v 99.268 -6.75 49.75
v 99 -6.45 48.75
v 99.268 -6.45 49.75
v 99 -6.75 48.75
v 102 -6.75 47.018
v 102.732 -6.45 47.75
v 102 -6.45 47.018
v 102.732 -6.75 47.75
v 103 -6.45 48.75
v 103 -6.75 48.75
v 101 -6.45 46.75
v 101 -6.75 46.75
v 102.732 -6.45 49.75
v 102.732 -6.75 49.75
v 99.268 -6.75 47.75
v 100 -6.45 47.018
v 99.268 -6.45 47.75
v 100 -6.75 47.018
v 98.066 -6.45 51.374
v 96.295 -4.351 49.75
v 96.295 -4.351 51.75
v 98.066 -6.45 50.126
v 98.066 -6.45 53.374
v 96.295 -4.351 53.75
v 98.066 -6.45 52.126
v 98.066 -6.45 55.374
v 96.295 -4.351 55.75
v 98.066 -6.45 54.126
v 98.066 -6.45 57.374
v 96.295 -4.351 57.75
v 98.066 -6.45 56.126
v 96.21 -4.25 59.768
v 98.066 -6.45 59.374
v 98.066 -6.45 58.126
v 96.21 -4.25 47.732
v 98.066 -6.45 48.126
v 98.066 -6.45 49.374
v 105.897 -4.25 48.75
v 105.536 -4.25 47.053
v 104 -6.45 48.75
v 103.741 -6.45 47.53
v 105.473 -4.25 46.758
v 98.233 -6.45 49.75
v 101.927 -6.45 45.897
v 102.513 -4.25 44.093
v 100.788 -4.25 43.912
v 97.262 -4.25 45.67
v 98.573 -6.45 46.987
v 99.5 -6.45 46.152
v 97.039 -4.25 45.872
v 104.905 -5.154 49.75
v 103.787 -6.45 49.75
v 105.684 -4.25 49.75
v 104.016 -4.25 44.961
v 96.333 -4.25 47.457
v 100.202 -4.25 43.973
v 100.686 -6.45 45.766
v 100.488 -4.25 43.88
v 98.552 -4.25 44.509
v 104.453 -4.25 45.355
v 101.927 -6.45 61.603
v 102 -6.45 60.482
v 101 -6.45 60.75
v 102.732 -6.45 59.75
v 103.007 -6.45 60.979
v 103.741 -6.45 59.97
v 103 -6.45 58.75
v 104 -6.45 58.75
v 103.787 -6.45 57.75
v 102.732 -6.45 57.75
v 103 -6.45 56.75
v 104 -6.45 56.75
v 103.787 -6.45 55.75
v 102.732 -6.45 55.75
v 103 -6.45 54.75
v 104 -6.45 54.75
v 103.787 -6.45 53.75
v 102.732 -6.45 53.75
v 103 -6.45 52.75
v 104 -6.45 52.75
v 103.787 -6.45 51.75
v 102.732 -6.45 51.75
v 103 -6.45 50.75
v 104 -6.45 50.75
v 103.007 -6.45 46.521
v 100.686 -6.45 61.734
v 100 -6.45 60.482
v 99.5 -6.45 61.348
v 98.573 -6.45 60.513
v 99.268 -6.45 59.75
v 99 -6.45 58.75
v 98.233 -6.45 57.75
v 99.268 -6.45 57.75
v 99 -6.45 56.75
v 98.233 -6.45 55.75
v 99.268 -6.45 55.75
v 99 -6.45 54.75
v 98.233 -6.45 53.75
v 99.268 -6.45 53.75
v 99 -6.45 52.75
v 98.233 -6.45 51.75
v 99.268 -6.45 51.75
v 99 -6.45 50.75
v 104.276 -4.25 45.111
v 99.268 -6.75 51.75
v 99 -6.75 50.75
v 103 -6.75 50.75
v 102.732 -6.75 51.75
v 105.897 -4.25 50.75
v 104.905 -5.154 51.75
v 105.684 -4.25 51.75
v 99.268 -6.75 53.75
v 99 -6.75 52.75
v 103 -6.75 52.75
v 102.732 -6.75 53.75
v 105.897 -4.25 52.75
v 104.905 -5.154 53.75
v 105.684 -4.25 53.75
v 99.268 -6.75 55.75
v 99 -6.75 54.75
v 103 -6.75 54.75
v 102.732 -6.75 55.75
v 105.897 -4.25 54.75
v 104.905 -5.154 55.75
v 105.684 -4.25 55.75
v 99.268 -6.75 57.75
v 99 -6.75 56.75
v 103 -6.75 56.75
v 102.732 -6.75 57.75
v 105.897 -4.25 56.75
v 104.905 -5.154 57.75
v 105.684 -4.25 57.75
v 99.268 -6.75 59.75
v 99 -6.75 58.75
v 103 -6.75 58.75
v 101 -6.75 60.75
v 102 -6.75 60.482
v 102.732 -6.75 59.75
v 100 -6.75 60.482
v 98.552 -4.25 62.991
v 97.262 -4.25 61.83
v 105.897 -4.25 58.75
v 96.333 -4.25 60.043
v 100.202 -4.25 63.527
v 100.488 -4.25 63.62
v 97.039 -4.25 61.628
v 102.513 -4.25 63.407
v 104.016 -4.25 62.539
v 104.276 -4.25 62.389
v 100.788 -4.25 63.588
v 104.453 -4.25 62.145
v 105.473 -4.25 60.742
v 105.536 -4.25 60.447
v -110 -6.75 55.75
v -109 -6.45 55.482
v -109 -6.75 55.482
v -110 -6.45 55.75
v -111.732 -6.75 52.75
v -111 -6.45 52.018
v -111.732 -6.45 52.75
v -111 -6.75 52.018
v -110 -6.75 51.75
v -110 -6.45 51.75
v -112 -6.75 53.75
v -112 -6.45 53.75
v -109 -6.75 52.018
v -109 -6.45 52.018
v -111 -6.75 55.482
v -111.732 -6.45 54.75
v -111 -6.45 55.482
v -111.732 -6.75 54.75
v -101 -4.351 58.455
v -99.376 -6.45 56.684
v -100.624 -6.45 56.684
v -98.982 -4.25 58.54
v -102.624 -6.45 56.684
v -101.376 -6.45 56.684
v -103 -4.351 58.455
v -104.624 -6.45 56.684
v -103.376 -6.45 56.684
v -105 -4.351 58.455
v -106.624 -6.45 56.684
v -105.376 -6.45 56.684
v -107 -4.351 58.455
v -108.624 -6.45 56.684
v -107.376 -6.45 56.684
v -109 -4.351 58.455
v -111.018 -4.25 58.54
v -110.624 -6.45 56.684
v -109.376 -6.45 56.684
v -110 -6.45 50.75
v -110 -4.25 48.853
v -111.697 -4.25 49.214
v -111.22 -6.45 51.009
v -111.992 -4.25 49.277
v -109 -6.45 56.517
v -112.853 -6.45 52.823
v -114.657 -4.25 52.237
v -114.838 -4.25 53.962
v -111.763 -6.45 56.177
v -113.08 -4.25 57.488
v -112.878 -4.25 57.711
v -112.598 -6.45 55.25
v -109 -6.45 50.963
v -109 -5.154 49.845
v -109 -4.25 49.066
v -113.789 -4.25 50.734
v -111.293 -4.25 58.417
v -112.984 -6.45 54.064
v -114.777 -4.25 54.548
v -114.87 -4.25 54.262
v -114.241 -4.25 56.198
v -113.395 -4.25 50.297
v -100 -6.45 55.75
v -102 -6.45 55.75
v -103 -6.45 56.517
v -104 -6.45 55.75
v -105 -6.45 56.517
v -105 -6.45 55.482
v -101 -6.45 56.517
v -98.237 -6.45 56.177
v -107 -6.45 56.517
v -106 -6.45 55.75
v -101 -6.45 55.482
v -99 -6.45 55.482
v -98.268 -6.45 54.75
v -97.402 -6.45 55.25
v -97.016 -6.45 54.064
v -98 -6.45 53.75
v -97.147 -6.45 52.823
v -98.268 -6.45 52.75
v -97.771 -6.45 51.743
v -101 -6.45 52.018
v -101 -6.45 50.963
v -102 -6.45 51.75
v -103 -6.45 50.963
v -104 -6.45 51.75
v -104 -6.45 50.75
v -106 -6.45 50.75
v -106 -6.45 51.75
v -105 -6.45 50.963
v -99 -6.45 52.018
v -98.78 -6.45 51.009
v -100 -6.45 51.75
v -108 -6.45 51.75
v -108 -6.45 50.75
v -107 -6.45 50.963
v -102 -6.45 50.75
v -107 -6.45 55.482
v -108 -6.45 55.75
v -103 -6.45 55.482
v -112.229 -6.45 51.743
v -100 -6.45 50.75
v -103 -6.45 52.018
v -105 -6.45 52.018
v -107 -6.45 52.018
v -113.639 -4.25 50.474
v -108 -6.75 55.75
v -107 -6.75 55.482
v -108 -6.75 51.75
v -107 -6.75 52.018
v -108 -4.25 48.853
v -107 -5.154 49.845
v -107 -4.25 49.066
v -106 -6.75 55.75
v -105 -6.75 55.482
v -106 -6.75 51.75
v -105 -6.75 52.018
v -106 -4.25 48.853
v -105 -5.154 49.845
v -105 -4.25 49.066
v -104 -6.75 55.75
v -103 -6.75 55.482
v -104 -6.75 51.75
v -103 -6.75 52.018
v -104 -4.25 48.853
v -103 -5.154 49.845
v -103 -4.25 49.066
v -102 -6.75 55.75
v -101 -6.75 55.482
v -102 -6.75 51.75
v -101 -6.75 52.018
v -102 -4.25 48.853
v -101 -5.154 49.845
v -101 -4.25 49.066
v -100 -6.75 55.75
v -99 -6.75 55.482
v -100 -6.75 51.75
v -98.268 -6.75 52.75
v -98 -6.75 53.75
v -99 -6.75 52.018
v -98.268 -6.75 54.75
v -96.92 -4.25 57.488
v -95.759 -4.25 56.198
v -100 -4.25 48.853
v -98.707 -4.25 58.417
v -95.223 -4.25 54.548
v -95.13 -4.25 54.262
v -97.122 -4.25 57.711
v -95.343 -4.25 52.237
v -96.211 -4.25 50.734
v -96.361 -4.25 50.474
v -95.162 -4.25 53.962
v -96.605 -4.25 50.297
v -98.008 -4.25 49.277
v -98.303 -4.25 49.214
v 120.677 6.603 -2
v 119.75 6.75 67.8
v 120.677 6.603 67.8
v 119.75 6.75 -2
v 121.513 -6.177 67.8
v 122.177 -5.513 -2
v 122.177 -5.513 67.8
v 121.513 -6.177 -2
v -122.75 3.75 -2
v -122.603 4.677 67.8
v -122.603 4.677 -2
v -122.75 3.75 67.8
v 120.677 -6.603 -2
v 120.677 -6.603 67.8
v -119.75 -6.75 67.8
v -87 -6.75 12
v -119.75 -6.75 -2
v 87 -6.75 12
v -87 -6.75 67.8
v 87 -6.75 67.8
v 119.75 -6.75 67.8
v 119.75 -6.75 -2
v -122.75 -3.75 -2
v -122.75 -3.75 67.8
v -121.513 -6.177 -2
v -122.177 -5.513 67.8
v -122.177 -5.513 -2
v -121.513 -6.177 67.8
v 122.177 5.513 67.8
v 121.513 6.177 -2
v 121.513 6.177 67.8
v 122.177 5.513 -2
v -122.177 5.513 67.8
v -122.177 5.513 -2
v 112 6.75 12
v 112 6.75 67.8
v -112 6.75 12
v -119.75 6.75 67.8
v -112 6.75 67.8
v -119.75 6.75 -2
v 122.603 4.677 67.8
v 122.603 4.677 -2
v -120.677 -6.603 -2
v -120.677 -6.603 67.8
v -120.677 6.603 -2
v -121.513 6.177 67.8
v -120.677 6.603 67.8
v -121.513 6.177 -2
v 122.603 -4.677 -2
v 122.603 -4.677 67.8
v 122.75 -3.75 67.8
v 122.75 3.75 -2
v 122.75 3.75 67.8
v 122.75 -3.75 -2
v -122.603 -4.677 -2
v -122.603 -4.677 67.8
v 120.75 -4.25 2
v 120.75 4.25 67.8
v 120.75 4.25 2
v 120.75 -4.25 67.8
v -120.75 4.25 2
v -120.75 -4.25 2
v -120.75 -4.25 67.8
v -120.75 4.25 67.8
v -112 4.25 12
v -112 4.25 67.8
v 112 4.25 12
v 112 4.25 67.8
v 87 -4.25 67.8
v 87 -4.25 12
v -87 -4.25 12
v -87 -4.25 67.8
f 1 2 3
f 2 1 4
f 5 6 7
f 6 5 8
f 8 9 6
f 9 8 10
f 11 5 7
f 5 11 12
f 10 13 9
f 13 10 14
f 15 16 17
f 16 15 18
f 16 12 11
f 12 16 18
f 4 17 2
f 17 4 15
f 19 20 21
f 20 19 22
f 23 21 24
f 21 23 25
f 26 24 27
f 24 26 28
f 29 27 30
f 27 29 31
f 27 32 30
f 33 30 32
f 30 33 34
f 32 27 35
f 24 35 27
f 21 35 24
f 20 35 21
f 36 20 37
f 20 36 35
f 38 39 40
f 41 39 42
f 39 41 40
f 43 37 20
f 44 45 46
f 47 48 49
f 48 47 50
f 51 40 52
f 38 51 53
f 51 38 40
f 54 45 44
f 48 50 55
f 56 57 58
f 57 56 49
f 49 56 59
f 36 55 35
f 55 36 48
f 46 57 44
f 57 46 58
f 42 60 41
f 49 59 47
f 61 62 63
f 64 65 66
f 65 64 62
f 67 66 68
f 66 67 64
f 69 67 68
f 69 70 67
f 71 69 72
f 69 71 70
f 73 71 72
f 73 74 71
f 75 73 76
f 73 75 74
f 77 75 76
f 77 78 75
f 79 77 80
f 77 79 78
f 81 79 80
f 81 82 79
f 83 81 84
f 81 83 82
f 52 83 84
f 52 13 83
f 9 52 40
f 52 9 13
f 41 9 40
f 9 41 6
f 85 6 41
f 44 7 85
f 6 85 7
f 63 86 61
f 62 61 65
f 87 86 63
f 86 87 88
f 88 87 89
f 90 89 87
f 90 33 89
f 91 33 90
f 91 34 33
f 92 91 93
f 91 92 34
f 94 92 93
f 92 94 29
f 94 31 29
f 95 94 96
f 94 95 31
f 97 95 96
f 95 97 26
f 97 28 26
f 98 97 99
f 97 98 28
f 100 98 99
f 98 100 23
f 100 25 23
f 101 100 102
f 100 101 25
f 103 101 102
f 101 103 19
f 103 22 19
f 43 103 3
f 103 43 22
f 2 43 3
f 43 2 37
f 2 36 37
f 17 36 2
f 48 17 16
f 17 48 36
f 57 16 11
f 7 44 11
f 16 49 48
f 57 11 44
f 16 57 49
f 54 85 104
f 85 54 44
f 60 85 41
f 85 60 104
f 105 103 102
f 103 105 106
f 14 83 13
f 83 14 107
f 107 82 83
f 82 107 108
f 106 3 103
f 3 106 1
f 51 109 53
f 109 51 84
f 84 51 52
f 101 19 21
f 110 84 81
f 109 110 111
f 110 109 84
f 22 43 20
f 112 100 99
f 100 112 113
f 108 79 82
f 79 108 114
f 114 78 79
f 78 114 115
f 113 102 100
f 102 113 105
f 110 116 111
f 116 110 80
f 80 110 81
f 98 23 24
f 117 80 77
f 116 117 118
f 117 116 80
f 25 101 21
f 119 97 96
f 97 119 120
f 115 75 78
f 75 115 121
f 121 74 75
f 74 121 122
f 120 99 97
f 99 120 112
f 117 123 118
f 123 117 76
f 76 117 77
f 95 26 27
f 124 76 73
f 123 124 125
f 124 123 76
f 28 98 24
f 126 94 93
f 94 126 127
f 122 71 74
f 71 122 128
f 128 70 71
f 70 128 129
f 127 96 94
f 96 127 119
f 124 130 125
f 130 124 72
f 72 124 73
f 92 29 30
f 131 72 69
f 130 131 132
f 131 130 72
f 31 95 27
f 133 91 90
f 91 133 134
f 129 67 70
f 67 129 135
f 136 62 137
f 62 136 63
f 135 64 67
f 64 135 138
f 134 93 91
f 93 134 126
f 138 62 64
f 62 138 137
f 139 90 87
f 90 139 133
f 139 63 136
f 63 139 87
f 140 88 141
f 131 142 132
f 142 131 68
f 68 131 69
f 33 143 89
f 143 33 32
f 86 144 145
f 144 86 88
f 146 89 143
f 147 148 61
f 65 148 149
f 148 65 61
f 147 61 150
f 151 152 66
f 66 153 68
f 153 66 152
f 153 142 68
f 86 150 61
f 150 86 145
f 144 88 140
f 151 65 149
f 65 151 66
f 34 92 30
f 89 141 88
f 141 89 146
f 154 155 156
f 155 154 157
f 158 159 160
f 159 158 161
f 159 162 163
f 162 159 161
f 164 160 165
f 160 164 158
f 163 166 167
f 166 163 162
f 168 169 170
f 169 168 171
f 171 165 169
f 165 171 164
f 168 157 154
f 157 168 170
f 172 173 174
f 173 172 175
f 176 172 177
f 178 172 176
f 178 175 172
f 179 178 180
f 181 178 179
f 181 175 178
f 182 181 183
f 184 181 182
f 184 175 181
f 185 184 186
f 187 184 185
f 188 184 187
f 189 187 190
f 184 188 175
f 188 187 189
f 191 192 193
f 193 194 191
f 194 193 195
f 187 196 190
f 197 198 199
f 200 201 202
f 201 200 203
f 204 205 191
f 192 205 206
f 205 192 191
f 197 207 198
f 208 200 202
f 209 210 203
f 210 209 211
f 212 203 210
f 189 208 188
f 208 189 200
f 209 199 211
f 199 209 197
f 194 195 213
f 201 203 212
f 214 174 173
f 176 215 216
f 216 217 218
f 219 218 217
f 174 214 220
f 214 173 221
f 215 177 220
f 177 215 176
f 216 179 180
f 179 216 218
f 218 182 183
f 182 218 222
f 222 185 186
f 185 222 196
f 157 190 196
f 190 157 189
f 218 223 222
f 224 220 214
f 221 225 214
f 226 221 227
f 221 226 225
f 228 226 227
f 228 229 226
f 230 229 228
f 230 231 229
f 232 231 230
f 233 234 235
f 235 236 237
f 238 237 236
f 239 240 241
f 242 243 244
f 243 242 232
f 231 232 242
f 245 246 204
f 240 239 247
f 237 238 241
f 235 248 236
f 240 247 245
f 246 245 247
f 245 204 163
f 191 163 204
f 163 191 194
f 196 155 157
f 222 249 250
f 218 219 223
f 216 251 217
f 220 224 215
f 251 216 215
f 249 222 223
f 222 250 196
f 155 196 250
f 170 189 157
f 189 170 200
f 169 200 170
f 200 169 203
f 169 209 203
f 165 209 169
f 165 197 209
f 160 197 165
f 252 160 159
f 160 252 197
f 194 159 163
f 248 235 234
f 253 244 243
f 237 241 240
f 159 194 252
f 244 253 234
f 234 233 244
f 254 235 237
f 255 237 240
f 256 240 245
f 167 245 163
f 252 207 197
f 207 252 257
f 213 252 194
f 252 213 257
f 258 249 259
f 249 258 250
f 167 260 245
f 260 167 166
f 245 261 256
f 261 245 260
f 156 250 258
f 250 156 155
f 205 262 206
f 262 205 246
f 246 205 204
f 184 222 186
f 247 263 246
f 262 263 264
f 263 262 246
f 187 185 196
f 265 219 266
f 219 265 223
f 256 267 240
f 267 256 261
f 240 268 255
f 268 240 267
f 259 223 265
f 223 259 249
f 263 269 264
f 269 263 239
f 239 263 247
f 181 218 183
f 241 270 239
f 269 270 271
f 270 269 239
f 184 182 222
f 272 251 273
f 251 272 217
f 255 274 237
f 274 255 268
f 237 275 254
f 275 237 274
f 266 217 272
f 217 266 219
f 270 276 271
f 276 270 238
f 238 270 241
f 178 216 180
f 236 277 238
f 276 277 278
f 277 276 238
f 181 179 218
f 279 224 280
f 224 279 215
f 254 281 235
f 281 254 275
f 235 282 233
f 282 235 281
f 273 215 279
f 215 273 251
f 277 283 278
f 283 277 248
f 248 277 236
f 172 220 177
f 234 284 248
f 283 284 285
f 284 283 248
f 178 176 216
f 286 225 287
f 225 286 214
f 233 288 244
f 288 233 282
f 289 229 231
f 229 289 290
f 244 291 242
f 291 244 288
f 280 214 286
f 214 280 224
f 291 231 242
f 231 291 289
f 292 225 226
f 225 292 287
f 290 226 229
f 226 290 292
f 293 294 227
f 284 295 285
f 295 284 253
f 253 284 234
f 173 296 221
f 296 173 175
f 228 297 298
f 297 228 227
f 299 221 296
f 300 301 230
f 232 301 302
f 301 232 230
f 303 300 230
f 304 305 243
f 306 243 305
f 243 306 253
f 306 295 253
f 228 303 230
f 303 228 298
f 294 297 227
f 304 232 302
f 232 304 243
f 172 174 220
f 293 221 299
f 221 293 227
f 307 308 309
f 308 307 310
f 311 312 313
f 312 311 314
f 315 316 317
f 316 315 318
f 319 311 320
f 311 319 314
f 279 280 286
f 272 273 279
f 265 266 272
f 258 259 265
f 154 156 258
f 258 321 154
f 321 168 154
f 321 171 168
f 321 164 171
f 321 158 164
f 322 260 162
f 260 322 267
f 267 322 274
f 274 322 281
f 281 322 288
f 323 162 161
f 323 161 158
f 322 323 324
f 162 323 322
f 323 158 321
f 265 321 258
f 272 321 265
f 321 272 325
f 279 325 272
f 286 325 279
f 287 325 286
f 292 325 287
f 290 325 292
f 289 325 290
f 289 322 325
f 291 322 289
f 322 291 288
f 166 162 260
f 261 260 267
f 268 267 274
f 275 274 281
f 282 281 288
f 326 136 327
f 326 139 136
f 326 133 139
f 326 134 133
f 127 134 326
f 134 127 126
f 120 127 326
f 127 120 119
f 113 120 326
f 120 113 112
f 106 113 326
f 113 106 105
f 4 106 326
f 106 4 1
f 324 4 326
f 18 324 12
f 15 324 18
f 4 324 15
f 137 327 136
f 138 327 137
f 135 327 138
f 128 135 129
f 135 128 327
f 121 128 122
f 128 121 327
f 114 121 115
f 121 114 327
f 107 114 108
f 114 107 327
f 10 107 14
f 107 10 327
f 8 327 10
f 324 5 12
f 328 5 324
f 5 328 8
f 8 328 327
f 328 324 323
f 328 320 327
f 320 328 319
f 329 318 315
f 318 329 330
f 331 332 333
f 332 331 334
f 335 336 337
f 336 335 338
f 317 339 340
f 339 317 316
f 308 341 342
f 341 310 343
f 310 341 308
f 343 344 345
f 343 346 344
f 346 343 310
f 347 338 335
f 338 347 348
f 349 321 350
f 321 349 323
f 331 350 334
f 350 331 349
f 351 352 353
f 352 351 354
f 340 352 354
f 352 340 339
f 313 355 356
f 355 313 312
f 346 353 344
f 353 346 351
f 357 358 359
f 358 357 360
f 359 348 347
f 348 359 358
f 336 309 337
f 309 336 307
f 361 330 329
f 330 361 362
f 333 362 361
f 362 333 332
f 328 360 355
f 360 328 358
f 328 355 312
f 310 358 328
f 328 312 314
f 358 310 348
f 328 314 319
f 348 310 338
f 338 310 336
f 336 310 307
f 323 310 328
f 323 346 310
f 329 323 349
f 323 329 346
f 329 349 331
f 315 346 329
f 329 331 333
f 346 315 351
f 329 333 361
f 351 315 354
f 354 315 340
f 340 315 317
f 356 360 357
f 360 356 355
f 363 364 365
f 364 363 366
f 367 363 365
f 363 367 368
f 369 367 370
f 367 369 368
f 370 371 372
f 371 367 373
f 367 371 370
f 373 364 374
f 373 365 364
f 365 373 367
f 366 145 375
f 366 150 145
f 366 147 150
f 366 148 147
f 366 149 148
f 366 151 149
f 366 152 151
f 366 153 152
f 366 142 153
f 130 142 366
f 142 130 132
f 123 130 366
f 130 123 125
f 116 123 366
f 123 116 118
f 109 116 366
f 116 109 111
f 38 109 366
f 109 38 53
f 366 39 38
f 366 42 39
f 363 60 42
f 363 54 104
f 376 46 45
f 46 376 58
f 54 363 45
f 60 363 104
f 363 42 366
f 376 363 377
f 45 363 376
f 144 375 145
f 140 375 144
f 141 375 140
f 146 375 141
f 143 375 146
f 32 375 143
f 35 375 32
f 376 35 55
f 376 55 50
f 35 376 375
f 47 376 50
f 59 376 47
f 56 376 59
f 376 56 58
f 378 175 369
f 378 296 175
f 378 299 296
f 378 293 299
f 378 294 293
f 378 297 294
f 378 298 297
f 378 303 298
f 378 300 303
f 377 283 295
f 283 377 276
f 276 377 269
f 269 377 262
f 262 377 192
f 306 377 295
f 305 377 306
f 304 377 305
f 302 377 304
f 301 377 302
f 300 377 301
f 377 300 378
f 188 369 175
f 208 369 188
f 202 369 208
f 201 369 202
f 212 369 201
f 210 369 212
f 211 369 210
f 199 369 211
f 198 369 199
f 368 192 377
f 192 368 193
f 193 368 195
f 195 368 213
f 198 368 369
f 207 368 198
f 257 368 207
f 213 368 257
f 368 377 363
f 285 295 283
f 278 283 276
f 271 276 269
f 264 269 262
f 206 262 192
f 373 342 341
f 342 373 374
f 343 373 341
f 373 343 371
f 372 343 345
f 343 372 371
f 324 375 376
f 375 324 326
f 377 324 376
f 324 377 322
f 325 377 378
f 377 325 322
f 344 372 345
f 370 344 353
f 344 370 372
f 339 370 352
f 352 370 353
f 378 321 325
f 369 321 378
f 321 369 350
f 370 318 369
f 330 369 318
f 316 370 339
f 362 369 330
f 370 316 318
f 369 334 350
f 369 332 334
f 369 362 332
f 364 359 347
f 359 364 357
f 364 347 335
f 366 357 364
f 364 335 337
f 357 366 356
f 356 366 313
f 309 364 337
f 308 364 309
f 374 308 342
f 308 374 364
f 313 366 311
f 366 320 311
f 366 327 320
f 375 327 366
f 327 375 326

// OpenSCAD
// Wall Mount for iPad (or other tablets)
//
// Current version sized for an OG iPad Air, see below
// 
// Fairly easy to customize but note there's some decent 
// amount of hacks especially around the screw holes depending
// on the overall frame thickness.

// ipad air (https://support.apple.com/kb/SP692)
ipad_w = 240; // landscape orientation
ipad_h = 169.5;
ipad_d = 7.5;

// wiggle room
wig_w = 1.5; 
wig_h = 4;
wig_d = 1.0; 

// frame thickness
ft_h = 4;
ft_w = 2;
ft_d = 2.5;

// distance case extends over ipad face
inset = 8;

// case height as fraction of width (landscape mode)
h_frac = 0.4;
h = ipad_h * h_frac;

// inset for wall mount screw locations
mount_w = 50;

// inside radius
rad_o = 3.0;


module wall_screw_hole() {
  // #6 Imperial Wood Screw
  screw_width = 4;
  screw_width2 = 11;
  screw_width3 = 6;
  screw_height = ft_d+.5;

  translate([0,0,0]) union() {
    // screw shaft
    cylinder(h=screw_height, d=screw_width, $fn=12);
    // countersink screw head space
    translate([0,0,screw_height/2-.7]) cylinder(h=screw_height/2+1.4, d1=screw_width3, d2=screw_width2, $fn=15);
  }
}

module wall_screw_holes() {
    // make a slot to allow for leveling
    for(i=[-5:2:05]) {
      translate([0,0,i]) rotate([-90,0,0]) wall_screw_hole();
    }
}

module case() {
  translate([0,0,ipad_h/2+ft_h])
    difference() {
      difference() { // main body
    
        // hacked a bit to allow for eased side edges
        d = ipad_d + ft_d*2 + wig_d;
        w = ipad_w + ft_w*2 + wig_w;
        h2 = ipad_h +ft_h*2 + wig_h;
        rotate([0,0,0]) translate([0,0,0-h2/2])
          linear_extrude(h2) {
            offset(r=rad_o, $fn=20)
            square([w-rad_o*2,d-rad_o*2], center = true);
        }
        
        // slot - TODO: maybe round this off as well w/offset?
        cube([ipad_w+ wig_w, ipad_d+wig_d, ipad_h+wig_h], center = true); 

        // front knockout
        translate([0,ipad_d/2+wig_d,0])
        cube([ipad_w - inset*2, ipad_d+wig_d+ft_d*1, ipad_h-inset*2], center = true); 

        // back knockout
        translate([0,-ipad_d/2-wig_d,0])
        cube([ipad_w - inset*2 - mount_w, ipad_d+wig_d+ft_d*3, ipad_h-inset*2], center = true);
        
        // top cutoff
        translate([0,0,h]) cube([ipad_w + ft_w*+10, ipad_d + wig_d + ft_d*2+1, ipad_h +ft_h*2], center = true);

      }
  
    // screw slots
    translate([ipad_w/2-mount_w/2+ft_w*3, -ipad_d/2-ft_d -wig_d, -35]) wall_screw_holes();
    translate([-ipad_w/2+mount_w/2-ft_w-8,  -ipad_d/2-ft_d -wig_d, -35]) rotate([0,90,0]) wall_screw_holes();
  }
}

case();
